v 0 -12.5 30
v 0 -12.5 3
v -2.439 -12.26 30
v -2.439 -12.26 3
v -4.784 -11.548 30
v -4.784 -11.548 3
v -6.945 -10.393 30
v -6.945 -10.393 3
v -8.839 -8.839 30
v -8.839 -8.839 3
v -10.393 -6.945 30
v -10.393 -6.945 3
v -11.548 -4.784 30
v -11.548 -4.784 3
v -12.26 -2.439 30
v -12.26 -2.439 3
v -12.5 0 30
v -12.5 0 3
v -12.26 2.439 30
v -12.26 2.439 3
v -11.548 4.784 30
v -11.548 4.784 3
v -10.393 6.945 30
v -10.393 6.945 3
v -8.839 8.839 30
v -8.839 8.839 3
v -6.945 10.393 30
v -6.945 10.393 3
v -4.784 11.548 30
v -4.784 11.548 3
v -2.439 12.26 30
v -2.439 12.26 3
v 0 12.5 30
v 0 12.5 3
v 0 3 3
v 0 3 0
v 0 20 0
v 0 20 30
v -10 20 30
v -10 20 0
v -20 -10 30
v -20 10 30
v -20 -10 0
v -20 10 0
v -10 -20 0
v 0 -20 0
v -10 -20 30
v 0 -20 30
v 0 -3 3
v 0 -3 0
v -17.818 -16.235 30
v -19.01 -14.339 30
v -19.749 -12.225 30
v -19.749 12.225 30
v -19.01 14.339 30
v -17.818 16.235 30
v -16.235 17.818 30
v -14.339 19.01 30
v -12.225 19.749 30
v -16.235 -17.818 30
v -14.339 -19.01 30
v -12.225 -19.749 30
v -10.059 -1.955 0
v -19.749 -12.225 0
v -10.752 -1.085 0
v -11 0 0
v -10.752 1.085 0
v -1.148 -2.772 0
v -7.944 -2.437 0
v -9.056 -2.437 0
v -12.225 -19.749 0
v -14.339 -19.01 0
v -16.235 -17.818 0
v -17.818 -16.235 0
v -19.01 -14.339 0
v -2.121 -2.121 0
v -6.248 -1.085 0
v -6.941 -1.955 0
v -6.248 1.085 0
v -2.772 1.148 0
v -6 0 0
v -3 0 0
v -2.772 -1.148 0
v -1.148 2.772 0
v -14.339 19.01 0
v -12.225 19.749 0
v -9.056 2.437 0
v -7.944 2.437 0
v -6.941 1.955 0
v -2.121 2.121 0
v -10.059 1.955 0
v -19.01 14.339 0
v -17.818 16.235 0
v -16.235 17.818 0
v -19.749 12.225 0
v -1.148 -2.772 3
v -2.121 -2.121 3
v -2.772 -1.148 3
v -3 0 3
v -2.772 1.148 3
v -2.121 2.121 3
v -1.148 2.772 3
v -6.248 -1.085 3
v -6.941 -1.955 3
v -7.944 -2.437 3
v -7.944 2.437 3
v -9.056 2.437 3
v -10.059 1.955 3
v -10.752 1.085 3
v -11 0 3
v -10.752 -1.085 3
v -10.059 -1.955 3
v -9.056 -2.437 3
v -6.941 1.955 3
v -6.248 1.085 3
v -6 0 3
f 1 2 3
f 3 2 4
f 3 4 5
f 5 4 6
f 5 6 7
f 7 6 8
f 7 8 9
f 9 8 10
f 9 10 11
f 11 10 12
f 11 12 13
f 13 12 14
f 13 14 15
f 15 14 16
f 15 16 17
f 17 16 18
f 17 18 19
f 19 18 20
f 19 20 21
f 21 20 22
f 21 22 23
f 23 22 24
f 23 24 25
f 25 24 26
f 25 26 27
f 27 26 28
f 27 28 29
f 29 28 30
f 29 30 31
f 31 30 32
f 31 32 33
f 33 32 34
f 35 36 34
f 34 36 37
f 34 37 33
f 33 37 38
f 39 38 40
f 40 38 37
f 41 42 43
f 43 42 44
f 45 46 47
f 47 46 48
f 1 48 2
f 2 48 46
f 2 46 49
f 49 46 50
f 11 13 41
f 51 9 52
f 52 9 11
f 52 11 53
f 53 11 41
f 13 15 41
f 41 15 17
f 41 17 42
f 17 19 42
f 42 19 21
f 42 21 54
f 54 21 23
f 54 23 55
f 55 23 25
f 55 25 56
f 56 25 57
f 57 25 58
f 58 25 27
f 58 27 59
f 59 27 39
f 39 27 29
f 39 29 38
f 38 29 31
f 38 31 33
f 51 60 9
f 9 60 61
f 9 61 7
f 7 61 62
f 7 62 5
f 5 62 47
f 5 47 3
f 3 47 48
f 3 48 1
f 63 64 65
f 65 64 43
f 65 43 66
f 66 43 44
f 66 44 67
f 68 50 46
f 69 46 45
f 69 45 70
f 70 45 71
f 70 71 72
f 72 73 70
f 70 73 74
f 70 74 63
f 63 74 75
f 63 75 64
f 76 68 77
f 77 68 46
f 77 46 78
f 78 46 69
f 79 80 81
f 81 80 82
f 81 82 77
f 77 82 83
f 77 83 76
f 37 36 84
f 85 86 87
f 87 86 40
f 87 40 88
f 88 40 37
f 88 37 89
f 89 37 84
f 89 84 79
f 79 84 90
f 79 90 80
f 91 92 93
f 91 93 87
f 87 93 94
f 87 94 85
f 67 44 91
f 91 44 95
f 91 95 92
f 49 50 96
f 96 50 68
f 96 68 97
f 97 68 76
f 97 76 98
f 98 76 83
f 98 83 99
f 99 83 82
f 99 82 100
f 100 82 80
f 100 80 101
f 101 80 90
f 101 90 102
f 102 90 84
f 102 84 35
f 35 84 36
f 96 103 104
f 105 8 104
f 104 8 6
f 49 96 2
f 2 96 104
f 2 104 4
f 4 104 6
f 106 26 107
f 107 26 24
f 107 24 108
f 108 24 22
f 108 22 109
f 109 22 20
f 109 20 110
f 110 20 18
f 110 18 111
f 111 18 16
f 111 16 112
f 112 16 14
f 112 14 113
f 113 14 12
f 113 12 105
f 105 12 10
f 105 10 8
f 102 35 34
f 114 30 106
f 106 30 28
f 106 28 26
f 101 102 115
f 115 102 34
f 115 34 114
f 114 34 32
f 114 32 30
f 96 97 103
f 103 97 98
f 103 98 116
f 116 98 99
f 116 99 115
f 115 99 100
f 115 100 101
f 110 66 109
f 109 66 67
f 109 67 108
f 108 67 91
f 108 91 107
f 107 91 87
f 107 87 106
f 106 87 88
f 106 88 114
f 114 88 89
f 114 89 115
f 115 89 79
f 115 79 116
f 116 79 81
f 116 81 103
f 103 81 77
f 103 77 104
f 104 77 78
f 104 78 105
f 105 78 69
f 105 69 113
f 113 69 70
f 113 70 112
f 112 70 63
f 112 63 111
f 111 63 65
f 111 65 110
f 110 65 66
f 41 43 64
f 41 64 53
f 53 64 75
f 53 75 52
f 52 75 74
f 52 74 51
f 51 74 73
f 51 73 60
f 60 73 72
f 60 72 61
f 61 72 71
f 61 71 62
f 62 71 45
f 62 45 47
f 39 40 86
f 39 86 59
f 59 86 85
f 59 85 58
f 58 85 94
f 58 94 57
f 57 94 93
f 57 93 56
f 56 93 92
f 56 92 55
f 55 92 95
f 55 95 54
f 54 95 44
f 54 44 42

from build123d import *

# Parameters (mm, degrees)
BOSS_EXTRUDE1_DEPTH = 30
SKETCH2_R           = 2.5
BOSS_EXTRUDE2_DEPTH = 3
FILLET1_R           = 10


with BuildPart() as part:
    # Sketch1 → Boss-Extrude1 (new body)
    with BuildSketch(Plane.XY):
        with BuildLine():
            Line((-20, 20), (0, 20))
            Line((0, 20), (0, 12.5))
            ThreePointArc((0, 12.5), (-12.5, 0), (0, -12.5))
            Line((0, -12.5), (0, -20))
            Line((0, -20), (-20, -20))
            Line((-20, -20), (-20, 20))
        make_face()
    extrude(amount=BOSS_EXTRUDE1_DEPTH)

    # Sketch2 → Boss-Extrude2 (add)
    with BuildSketch(Plane(origin=(0, 0, 0), x_dir=(-1, 0, 0), z_dir=(0, 0, -1))):
        with BuildLine():
            Line((0, -12.5), (0, -3))
            ThreePointArc((0, -3), (3, 0), (0, 3))
            Line((0, 3), (0, 12.5))
            ThreePointArc((0, 12.5), (12.5, 0), (0, -12.5))
        make_face()
        with Locations((8.5, 0)):
            Circle(SKETCH2_R, mode=Mode.SUBTRACT)
    extrude(amount=-BOSS_EXTRUDE2_DEPTH)

    # Fillet1
    fillet1_edges = [part.edges().sort_by_distance(p)[0] for p in [
        (-20, -20, 15),
        (-20, 20, 15),
    ]]
    fillet(fillet1_edges, radius=FILLET1_R)


solid = part.part
